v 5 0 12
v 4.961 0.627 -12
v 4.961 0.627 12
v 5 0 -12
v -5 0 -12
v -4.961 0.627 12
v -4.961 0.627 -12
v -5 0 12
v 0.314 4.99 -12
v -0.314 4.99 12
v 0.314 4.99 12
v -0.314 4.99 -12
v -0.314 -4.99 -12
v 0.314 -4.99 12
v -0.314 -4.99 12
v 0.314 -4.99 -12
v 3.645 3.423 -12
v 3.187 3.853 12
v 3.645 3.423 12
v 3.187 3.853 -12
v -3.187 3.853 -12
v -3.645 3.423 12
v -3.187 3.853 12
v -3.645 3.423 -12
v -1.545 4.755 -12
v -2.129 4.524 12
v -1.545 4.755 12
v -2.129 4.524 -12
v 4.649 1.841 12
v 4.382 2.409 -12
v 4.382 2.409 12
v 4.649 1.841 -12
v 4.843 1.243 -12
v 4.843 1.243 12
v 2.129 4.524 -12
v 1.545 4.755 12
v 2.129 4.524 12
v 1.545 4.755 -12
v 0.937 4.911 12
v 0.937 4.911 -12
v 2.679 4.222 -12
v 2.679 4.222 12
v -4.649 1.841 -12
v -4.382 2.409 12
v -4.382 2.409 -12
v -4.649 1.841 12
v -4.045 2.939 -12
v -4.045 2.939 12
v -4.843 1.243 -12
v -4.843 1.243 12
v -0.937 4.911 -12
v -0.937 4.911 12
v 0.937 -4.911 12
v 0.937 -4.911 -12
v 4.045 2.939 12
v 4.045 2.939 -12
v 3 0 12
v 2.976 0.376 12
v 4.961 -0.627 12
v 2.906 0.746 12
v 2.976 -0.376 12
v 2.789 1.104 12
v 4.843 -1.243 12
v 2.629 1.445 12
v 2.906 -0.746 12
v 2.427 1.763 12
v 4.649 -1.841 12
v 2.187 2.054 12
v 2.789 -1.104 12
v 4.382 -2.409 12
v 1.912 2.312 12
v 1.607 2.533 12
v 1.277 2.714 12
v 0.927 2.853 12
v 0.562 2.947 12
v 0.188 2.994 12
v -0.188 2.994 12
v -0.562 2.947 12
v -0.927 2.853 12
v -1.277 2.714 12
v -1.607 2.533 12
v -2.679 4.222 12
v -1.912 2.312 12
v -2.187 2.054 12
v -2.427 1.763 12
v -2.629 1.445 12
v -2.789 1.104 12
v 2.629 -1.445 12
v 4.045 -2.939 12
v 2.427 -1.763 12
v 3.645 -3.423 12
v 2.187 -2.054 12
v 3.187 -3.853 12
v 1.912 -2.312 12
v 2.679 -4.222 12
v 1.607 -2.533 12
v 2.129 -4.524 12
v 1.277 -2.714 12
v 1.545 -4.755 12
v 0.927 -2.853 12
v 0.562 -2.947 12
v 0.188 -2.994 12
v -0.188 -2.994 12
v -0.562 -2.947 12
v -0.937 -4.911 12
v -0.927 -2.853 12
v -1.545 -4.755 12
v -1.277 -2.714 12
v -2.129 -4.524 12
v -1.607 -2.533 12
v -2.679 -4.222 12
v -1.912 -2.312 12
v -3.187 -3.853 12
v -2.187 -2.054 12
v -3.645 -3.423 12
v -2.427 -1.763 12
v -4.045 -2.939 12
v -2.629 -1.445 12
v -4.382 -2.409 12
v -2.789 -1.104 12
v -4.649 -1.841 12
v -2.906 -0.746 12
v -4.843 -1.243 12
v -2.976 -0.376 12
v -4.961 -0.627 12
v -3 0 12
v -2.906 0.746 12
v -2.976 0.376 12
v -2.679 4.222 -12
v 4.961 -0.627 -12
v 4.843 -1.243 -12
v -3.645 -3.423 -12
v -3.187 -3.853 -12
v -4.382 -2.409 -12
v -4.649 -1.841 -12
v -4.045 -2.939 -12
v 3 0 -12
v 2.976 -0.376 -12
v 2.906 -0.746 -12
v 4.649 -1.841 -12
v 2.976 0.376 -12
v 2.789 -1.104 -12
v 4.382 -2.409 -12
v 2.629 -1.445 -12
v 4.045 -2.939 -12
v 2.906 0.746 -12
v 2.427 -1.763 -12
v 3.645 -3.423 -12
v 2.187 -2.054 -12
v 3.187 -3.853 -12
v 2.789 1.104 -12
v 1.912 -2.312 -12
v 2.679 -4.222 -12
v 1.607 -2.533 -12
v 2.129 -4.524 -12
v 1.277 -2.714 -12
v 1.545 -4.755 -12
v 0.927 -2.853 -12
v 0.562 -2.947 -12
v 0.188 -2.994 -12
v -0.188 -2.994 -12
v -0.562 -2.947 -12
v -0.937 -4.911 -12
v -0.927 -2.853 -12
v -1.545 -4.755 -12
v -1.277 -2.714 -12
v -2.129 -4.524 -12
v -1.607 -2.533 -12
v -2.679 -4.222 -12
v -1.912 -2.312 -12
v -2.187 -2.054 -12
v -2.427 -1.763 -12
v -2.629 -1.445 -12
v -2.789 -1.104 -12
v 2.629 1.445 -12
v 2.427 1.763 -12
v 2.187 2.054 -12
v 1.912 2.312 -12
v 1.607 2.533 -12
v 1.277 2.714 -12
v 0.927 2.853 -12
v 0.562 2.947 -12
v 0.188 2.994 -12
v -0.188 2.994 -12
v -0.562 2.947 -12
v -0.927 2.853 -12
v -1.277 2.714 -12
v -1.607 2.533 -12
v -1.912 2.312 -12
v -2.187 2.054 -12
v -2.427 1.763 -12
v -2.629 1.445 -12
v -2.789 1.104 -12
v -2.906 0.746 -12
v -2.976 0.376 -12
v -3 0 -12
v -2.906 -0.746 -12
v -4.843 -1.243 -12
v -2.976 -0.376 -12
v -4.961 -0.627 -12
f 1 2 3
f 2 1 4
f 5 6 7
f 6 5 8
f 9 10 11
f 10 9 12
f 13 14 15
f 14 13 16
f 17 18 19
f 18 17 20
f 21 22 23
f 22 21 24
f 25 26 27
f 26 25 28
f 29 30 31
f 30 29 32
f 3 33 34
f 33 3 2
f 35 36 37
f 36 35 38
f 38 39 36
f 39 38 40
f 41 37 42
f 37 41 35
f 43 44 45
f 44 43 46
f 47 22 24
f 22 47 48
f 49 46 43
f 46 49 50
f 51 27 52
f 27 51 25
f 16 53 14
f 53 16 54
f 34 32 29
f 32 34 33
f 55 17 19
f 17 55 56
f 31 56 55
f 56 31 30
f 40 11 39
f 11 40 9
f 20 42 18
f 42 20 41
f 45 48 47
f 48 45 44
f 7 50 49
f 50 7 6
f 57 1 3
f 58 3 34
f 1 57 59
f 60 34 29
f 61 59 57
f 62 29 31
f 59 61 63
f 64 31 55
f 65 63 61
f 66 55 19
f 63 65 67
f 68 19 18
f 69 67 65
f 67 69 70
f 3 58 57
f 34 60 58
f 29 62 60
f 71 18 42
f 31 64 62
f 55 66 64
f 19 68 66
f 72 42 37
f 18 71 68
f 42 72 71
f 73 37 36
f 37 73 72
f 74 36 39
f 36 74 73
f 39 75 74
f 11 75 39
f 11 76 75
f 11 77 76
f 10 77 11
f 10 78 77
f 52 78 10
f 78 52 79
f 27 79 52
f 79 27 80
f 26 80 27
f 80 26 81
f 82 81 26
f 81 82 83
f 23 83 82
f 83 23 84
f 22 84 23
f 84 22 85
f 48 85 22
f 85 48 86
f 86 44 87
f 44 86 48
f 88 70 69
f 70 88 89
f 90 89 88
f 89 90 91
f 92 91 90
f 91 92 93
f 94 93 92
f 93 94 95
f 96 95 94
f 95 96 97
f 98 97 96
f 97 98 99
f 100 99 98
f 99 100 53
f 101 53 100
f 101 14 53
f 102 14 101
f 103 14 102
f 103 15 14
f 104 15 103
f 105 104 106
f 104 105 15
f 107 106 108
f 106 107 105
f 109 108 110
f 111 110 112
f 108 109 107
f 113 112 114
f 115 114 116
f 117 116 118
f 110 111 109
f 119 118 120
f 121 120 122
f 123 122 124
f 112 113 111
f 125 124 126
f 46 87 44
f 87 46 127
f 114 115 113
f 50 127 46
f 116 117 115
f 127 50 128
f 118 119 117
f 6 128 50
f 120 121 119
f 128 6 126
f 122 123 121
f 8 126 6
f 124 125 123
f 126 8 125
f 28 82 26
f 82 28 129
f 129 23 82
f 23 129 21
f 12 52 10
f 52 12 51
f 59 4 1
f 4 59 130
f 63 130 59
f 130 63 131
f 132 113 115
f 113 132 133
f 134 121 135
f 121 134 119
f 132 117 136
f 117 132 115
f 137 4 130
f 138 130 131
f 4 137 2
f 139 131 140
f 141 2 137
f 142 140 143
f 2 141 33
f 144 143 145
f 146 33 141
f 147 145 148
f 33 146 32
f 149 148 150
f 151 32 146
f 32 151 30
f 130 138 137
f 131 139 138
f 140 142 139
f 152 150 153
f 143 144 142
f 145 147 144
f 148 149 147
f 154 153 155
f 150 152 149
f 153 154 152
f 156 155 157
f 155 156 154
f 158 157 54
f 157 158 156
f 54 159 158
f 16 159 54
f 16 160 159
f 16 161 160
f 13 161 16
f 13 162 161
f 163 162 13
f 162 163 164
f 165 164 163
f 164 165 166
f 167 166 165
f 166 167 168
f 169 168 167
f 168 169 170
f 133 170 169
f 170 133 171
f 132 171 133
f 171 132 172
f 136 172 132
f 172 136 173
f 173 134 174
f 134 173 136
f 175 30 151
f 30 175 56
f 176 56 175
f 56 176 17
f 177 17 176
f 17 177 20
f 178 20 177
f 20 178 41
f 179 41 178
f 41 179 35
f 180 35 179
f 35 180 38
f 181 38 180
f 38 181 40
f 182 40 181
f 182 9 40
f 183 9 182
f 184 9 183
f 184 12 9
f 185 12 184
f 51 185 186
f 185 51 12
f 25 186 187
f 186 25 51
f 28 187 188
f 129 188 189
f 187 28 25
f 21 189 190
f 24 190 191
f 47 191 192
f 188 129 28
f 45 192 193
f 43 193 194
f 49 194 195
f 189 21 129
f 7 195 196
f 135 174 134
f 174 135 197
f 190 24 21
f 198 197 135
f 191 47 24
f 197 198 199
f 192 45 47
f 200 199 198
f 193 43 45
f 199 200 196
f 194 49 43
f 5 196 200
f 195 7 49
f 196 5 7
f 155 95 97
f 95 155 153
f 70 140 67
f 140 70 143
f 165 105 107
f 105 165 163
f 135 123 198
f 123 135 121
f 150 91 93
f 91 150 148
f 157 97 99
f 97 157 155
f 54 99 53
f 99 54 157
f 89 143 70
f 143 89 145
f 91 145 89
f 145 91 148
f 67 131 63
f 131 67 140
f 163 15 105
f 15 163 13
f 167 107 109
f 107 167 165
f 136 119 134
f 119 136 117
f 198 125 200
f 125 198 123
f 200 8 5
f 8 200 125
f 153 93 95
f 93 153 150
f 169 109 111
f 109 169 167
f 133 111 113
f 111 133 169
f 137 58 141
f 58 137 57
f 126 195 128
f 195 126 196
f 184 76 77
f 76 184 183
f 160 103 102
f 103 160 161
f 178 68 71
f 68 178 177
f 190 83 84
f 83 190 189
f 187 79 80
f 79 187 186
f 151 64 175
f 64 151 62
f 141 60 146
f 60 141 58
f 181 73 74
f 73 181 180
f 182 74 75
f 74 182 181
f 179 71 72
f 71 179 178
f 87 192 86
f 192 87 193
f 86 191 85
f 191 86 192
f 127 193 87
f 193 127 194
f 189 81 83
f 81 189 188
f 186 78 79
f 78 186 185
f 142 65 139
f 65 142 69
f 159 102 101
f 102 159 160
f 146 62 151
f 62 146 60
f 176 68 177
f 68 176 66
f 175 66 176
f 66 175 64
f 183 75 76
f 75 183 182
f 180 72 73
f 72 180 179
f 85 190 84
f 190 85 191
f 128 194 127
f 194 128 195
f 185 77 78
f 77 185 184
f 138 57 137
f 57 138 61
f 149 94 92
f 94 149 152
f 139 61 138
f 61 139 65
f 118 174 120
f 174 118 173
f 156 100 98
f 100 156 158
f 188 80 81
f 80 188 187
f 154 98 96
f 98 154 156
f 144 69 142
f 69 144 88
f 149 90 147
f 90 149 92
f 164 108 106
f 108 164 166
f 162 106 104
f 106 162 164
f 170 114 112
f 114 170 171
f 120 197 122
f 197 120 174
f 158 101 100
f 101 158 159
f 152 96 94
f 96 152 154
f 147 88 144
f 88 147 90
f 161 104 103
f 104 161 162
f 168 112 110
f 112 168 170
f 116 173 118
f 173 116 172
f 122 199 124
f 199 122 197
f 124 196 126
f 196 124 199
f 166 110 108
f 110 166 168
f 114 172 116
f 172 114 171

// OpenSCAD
$fn = 50;


difference() {
	union() {
		translate(v = [0, 0, -12.0000000000]) {
			cylinder(h = 24, r = 5.0000000000);
		}
	}
	union() {
		translate(v = [0, 0, -100.0000000000]) {
			cylinder(h = 200, r = 3);
		}
	}
}
